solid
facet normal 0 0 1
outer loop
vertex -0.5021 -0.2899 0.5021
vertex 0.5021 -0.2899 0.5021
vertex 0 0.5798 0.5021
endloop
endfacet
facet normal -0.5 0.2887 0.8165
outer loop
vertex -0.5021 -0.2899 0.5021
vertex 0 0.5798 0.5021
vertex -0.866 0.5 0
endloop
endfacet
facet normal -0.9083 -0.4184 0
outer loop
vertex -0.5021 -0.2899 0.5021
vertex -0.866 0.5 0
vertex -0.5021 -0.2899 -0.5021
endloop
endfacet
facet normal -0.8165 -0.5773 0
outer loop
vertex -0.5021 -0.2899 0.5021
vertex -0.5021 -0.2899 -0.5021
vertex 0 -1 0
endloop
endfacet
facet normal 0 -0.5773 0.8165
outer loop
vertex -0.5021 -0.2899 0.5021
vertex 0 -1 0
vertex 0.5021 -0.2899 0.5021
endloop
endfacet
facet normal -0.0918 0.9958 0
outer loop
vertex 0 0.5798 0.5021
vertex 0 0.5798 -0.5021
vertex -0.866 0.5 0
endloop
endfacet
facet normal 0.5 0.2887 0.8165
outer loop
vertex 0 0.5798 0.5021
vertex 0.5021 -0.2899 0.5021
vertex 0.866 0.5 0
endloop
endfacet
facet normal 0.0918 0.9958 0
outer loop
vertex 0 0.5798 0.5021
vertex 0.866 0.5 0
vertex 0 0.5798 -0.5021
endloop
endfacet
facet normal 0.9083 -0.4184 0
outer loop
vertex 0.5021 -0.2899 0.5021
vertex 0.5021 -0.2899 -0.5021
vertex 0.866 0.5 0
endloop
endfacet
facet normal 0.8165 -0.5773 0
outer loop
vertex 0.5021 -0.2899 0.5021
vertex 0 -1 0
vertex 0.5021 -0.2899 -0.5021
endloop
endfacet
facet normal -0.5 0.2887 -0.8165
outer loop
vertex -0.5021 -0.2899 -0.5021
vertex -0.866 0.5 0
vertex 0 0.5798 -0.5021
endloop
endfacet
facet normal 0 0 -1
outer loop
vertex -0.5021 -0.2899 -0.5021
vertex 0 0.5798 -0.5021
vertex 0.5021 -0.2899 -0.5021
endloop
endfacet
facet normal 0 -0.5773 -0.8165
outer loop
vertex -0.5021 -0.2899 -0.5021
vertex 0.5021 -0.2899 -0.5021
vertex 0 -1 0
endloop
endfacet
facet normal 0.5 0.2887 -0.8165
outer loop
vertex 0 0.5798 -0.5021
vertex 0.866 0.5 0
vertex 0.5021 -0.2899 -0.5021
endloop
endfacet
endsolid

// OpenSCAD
polyhedron( points = [[-0.502117975969429, -0.289897948581776, 0.50211797593355], [1.89034567337251e-11, 0.57979589716355, 0.50211797593355], [0.502117975903113, -0.289897948581776, 0.50211797593355], [-0.502117975924342, -0.289897948555745, -0.502117975938992], [1.89054636003018e-11, 0.579795897111492, -0.502117975938992], [0.502117975948203, -0.289897948555745, -0.502117975848822], [-0.866025403760408, 0.500000000041622, -2.46153892349716e-11], [0.866025403772184, 0.499999999922908, -2.46123789351066e-11], [-7.12727515443979e-12, -0.999999999964529, -2.46163926682599e-11]], faces = [[0, 2, 1], [0, 1, 6], [0, 6, 3], [0, 3, 8], [0, 8, 2], [1, 4, 6], [1, 2, 7], [1, 7, 4], [2, 5, 7], [2, 8, 5], [3, 6, 4], [3, 4, 5], [3, 5, 8], [4, 7, 5]]);
